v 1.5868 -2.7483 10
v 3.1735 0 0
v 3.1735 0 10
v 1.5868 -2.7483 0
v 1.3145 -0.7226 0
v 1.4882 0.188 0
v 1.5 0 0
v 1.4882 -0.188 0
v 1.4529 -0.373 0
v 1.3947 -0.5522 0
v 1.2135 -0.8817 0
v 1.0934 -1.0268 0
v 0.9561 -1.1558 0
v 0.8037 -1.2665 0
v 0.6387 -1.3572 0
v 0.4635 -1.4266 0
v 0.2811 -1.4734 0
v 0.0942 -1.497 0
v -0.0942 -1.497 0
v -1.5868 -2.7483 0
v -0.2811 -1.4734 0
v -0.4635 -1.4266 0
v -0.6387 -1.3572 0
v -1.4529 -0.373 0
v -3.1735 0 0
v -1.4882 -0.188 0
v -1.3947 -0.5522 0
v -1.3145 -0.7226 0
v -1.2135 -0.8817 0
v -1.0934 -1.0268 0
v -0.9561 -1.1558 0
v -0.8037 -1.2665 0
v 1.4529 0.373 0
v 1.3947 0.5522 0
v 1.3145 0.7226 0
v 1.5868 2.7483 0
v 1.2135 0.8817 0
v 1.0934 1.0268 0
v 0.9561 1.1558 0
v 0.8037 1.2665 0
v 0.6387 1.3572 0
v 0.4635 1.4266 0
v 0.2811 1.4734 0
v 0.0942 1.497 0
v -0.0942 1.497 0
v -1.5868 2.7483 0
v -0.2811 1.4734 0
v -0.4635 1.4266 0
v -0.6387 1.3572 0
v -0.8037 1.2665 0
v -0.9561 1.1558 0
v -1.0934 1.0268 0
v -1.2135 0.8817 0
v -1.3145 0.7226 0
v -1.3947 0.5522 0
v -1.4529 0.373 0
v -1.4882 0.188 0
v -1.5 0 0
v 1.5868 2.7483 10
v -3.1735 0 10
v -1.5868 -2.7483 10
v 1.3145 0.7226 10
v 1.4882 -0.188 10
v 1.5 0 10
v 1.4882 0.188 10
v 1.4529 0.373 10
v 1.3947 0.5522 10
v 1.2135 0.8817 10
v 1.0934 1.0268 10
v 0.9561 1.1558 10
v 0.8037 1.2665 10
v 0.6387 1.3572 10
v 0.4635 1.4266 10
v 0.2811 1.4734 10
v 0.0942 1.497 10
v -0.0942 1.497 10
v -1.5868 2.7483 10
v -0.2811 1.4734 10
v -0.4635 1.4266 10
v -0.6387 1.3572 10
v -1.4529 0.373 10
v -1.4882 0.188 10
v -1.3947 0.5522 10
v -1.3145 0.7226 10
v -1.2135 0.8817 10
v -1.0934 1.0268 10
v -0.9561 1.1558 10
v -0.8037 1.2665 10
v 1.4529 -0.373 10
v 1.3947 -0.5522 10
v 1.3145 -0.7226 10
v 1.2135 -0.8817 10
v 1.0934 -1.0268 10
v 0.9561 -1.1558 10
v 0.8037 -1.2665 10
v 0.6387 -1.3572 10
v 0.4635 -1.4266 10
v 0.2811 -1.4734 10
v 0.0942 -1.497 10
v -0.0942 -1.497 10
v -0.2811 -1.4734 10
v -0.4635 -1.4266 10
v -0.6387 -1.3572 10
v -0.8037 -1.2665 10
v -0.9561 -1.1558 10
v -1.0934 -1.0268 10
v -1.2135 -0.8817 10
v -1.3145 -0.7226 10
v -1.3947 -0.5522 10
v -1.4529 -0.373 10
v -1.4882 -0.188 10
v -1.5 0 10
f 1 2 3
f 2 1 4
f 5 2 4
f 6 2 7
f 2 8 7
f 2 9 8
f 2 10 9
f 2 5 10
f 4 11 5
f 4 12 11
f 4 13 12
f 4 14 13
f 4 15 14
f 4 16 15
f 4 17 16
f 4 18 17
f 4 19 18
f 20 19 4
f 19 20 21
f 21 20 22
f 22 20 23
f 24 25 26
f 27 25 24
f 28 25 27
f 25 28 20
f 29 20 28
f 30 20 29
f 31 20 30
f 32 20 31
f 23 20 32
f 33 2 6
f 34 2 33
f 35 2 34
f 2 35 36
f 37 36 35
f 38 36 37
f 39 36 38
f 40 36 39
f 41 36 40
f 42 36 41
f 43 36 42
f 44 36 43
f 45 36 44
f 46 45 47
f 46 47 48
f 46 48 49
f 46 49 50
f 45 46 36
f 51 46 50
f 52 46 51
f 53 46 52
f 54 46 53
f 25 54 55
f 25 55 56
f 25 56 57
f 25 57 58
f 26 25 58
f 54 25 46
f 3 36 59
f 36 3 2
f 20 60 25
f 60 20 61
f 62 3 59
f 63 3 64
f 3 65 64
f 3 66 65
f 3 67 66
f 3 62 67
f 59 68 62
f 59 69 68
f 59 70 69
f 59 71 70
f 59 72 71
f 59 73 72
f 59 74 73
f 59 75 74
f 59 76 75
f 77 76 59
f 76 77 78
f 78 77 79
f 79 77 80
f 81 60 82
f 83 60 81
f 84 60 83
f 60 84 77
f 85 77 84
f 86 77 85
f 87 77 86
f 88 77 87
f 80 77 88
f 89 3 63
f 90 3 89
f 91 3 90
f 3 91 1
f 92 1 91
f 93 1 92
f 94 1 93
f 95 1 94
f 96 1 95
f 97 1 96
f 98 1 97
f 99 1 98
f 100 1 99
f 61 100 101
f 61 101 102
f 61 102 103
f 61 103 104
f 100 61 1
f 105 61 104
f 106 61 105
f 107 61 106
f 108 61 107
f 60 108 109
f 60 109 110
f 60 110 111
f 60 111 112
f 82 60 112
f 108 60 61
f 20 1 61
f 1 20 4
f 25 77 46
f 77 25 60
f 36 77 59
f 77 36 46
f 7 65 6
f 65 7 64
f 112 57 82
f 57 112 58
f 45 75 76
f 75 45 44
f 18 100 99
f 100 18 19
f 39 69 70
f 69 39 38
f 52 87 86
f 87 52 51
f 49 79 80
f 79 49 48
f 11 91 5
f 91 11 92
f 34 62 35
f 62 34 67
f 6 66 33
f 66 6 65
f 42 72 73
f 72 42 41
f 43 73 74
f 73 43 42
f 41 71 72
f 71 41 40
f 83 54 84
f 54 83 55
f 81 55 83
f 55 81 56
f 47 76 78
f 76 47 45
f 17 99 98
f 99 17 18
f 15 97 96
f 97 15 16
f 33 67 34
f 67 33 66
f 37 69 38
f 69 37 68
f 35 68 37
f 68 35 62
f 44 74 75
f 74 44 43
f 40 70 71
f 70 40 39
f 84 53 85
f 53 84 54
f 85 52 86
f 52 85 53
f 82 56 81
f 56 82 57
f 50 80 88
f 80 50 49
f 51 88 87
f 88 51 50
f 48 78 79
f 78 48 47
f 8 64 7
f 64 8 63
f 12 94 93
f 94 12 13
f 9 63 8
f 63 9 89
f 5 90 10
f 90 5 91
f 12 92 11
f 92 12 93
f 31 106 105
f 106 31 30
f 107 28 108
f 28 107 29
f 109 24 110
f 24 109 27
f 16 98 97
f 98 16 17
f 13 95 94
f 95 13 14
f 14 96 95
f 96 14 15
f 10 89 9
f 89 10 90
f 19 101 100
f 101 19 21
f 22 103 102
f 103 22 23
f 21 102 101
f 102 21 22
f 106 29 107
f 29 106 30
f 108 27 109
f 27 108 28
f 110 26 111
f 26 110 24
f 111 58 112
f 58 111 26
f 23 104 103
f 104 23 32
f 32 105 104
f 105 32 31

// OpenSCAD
$fn = 50;


difference() {
	union() {
		translate(v = [0, 0, 0]) {
			rotate(a = [0, 0, 0]) {
				translate(v = [0, 0, 0]) {
					rotate(a = [0, 0, 0]) {
						linear_extrude(height = 10) {
							polygon(points = [[3.1735000000, 0.0000000000], [1.5867500000, 2.7483316189], [-1.5867500000, 2.7483316189], [-3.1735000000, 0.0000000000], [-1.5867500000, -2.7483316189], [1.5867500000, -2.7483316189]]);
						}
					}
				}
			}
		}
	}
	union() {
		translate(v = [0, 0, 0]) {
			rotate(a = [0, 0, 0]) {
				cylinder(h = 10, r = 1.5000000000);
			}
		}
	}
}
